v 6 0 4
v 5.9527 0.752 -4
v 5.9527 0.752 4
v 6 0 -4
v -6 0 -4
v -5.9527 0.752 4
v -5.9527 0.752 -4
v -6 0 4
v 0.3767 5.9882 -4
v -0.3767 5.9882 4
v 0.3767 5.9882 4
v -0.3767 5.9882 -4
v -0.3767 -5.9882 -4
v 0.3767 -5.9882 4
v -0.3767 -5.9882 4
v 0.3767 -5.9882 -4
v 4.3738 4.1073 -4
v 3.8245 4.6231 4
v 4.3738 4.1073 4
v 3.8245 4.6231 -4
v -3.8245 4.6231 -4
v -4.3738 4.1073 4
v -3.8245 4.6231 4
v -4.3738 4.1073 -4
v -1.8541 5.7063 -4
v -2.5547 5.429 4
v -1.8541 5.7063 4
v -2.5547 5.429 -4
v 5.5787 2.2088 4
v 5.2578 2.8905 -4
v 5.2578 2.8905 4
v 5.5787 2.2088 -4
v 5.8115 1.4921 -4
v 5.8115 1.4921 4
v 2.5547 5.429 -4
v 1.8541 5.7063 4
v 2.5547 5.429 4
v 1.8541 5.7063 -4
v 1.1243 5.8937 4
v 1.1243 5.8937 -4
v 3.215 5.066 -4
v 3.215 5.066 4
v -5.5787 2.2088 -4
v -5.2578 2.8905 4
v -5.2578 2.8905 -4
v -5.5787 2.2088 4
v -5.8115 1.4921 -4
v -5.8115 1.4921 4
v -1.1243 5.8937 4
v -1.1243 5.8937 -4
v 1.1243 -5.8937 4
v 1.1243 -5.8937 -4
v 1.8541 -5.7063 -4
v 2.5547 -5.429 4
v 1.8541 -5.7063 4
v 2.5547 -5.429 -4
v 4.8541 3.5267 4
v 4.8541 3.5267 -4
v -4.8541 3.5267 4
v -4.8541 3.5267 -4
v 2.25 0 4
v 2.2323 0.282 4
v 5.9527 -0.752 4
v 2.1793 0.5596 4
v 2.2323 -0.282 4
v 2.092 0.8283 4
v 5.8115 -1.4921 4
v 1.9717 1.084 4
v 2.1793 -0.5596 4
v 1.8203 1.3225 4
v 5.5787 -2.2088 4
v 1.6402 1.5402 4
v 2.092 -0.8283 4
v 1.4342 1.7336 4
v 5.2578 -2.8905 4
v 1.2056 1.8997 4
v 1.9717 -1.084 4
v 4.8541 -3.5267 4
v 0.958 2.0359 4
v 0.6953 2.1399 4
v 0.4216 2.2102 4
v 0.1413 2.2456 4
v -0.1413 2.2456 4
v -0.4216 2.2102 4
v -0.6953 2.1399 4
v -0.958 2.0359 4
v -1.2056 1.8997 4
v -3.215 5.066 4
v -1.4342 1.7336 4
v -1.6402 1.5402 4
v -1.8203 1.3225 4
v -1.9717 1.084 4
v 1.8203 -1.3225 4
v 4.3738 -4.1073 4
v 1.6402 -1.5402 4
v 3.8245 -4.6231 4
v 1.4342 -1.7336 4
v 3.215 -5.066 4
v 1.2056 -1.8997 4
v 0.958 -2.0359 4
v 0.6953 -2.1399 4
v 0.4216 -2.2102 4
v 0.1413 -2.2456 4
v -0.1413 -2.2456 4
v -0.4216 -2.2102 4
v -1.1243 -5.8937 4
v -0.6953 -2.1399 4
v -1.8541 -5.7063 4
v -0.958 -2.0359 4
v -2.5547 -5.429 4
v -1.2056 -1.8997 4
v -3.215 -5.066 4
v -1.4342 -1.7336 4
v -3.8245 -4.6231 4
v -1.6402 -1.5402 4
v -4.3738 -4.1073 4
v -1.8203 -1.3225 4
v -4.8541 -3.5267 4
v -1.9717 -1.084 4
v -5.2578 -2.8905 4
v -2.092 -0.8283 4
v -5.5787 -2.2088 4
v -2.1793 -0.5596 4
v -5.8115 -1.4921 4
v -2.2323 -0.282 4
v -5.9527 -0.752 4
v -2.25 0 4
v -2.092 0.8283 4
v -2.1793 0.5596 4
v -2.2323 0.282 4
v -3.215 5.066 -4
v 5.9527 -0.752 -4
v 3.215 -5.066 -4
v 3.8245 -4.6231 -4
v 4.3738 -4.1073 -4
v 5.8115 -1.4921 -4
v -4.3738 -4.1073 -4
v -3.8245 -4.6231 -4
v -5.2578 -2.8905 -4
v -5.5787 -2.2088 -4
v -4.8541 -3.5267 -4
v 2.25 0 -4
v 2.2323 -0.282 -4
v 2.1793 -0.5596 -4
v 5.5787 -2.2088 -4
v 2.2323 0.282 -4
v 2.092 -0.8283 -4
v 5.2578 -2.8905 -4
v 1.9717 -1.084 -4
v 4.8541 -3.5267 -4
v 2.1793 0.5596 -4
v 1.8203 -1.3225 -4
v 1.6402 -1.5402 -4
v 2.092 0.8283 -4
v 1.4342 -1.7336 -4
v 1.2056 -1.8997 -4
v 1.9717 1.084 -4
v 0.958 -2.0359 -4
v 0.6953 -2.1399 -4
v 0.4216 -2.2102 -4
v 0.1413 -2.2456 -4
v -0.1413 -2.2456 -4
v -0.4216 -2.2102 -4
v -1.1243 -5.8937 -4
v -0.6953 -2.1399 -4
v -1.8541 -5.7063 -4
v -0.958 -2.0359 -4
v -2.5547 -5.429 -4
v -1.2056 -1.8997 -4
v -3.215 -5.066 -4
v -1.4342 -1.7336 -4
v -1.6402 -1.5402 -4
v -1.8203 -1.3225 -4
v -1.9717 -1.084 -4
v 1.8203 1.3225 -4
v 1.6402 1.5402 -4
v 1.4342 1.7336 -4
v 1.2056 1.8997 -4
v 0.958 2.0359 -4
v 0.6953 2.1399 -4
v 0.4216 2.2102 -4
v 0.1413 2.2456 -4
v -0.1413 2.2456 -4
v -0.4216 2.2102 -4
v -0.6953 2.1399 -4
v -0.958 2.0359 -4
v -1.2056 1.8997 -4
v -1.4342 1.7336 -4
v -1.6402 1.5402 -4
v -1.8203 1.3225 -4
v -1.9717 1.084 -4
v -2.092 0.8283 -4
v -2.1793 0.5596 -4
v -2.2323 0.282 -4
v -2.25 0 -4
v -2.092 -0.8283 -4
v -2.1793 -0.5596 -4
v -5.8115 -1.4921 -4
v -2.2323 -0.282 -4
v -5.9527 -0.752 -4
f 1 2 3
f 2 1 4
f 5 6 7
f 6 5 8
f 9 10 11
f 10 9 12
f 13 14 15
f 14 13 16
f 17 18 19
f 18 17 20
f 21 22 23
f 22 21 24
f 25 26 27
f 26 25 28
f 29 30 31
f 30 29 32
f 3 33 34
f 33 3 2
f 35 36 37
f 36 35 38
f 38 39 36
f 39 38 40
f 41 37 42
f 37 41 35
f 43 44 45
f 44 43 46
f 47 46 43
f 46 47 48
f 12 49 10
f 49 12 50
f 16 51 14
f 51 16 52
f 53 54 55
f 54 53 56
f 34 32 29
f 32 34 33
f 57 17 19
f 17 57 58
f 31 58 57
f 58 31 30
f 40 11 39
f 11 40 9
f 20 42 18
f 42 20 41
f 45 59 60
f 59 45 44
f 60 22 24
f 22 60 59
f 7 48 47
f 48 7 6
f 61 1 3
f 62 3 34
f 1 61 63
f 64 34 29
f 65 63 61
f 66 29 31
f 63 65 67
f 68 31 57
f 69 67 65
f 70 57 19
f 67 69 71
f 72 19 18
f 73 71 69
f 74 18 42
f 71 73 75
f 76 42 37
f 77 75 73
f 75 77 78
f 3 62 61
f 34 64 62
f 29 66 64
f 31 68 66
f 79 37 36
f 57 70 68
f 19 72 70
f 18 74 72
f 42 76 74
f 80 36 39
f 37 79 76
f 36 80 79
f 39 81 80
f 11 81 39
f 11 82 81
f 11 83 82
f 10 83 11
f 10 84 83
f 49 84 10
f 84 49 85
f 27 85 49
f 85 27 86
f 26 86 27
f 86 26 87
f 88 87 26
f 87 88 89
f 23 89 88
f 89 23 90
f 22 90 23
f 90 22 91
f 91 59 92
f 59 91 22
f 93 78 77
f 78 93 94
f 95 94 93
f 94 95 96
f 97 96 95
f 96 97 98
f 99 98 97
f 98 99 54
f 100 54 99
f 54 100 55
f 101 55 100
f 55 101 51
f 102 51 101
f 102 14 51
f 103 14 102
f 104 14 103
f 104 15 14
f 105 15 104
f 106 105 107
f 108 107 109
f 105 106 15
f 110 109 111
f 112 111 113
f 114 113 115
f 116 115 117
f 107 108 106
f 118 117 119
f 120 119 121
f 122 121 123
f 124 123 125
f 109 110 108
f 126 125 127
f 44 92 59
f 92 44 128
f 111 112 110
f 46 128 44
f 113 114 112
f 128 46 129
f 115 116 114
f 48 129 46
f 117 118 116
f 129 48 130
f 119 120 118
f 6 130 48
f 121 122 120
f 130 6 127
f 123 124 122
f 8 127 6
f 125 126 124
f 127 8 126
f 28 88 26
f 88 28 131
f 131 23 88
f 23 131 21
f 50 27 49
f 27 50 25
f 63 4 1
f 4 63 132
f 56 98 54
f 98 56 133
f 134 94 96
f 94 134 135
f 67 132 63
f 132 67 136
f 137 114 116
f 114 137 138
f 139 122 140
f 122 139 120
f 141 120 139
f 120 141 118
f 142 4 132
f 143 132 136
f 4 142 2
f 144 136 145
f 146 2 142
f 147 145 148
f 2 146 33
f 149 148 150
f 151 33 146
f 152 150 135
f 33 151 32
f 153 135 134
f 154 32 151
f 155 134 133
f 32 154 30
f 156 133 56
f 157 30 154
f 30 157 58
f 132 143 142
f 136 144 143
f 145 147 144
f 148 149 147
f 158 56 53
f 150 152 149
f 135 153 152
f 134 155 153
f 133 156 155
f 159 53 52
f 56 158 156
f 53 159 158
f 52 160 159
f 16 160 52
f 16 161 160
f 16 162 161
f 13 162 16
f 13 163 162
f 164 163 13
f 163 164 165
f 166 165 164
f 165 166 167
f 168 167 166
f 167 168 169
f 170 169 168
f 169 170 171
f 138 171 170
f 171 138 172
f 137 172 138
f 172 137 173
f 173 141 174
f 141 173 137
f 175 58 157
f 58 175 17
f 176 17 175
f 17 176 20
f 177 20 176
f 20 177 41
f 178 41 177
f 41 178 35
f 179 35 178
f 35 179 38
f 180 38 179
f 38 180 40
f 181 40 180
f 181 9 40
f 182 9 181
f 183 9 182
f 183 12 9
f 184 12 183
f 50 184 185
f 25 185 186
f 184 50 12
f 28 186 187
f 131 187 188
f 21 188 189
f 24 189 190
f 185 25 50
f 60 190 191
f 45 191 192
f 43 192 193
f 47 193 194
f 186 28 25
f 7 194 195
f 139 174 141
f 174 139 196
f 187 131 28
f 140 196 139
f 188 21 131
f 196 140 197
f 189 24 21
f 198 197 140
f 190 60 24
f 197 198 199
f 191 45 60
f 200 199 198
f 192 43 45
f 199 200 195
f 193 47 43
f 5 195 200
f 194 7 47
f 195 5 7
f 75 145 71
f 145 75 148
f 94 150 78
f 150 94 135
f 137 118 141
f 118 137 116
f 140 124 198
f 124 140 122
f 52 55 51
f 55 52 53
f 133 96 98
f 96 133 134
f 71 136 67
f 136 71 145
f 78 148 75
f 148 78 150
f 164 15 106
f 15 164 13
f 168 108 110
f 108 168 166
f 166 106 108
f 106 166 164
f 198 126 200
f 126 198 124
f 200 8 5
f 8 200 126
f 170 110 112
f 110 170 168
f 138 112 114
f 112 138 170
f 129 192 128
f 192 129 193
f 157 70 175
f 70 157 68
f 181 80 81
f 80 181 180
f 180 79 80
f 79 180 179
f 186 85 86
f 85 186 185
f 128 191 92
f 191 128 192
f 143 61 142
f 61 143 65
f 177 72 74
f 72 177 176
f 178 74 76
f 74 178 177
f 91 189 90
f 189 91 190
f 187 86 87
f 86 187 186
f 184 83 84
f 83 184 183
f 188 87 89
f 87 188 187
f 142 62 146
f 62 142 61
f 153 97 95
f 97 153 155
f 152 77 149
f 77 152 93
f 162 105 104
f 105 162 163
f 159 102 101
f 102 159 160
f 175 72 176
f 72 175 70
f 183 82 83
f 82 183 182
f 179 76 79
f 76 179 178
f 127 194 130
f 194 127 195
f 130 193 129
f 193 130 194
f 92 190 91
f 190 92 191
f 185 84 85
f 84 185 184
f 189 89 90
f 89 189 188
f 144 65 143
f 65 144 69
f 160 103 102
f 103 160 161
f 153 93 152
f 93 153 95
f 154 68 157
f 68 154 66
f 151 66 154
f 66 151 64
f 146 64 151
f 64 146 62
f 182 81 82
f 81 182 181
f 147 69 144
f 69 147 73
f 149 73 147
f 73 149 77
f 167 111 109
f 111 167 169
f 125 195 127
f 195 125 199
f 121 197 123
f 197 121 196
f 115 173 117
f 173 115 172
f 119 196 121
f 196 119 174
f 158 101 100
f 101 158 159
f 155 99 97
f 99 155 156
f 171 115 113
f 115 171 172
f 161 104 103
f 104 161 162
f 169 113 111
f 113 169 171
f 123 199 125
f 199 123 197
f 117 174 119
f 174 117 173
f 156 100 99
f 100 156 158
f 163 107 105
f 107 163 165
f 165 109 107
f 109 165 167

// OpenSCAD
$fn = 50;


difference() {
	union() {
		translate(v = [0, 0, -4.0000000000]) {
			cylinder(h = 8, r = 6.0000000000);
		}
	}
	union() {
		translate(v = [0, 0, -100.0000000000]) {
			cylinder(h = 200, r = 2.2500000000);
		}
	}
}
